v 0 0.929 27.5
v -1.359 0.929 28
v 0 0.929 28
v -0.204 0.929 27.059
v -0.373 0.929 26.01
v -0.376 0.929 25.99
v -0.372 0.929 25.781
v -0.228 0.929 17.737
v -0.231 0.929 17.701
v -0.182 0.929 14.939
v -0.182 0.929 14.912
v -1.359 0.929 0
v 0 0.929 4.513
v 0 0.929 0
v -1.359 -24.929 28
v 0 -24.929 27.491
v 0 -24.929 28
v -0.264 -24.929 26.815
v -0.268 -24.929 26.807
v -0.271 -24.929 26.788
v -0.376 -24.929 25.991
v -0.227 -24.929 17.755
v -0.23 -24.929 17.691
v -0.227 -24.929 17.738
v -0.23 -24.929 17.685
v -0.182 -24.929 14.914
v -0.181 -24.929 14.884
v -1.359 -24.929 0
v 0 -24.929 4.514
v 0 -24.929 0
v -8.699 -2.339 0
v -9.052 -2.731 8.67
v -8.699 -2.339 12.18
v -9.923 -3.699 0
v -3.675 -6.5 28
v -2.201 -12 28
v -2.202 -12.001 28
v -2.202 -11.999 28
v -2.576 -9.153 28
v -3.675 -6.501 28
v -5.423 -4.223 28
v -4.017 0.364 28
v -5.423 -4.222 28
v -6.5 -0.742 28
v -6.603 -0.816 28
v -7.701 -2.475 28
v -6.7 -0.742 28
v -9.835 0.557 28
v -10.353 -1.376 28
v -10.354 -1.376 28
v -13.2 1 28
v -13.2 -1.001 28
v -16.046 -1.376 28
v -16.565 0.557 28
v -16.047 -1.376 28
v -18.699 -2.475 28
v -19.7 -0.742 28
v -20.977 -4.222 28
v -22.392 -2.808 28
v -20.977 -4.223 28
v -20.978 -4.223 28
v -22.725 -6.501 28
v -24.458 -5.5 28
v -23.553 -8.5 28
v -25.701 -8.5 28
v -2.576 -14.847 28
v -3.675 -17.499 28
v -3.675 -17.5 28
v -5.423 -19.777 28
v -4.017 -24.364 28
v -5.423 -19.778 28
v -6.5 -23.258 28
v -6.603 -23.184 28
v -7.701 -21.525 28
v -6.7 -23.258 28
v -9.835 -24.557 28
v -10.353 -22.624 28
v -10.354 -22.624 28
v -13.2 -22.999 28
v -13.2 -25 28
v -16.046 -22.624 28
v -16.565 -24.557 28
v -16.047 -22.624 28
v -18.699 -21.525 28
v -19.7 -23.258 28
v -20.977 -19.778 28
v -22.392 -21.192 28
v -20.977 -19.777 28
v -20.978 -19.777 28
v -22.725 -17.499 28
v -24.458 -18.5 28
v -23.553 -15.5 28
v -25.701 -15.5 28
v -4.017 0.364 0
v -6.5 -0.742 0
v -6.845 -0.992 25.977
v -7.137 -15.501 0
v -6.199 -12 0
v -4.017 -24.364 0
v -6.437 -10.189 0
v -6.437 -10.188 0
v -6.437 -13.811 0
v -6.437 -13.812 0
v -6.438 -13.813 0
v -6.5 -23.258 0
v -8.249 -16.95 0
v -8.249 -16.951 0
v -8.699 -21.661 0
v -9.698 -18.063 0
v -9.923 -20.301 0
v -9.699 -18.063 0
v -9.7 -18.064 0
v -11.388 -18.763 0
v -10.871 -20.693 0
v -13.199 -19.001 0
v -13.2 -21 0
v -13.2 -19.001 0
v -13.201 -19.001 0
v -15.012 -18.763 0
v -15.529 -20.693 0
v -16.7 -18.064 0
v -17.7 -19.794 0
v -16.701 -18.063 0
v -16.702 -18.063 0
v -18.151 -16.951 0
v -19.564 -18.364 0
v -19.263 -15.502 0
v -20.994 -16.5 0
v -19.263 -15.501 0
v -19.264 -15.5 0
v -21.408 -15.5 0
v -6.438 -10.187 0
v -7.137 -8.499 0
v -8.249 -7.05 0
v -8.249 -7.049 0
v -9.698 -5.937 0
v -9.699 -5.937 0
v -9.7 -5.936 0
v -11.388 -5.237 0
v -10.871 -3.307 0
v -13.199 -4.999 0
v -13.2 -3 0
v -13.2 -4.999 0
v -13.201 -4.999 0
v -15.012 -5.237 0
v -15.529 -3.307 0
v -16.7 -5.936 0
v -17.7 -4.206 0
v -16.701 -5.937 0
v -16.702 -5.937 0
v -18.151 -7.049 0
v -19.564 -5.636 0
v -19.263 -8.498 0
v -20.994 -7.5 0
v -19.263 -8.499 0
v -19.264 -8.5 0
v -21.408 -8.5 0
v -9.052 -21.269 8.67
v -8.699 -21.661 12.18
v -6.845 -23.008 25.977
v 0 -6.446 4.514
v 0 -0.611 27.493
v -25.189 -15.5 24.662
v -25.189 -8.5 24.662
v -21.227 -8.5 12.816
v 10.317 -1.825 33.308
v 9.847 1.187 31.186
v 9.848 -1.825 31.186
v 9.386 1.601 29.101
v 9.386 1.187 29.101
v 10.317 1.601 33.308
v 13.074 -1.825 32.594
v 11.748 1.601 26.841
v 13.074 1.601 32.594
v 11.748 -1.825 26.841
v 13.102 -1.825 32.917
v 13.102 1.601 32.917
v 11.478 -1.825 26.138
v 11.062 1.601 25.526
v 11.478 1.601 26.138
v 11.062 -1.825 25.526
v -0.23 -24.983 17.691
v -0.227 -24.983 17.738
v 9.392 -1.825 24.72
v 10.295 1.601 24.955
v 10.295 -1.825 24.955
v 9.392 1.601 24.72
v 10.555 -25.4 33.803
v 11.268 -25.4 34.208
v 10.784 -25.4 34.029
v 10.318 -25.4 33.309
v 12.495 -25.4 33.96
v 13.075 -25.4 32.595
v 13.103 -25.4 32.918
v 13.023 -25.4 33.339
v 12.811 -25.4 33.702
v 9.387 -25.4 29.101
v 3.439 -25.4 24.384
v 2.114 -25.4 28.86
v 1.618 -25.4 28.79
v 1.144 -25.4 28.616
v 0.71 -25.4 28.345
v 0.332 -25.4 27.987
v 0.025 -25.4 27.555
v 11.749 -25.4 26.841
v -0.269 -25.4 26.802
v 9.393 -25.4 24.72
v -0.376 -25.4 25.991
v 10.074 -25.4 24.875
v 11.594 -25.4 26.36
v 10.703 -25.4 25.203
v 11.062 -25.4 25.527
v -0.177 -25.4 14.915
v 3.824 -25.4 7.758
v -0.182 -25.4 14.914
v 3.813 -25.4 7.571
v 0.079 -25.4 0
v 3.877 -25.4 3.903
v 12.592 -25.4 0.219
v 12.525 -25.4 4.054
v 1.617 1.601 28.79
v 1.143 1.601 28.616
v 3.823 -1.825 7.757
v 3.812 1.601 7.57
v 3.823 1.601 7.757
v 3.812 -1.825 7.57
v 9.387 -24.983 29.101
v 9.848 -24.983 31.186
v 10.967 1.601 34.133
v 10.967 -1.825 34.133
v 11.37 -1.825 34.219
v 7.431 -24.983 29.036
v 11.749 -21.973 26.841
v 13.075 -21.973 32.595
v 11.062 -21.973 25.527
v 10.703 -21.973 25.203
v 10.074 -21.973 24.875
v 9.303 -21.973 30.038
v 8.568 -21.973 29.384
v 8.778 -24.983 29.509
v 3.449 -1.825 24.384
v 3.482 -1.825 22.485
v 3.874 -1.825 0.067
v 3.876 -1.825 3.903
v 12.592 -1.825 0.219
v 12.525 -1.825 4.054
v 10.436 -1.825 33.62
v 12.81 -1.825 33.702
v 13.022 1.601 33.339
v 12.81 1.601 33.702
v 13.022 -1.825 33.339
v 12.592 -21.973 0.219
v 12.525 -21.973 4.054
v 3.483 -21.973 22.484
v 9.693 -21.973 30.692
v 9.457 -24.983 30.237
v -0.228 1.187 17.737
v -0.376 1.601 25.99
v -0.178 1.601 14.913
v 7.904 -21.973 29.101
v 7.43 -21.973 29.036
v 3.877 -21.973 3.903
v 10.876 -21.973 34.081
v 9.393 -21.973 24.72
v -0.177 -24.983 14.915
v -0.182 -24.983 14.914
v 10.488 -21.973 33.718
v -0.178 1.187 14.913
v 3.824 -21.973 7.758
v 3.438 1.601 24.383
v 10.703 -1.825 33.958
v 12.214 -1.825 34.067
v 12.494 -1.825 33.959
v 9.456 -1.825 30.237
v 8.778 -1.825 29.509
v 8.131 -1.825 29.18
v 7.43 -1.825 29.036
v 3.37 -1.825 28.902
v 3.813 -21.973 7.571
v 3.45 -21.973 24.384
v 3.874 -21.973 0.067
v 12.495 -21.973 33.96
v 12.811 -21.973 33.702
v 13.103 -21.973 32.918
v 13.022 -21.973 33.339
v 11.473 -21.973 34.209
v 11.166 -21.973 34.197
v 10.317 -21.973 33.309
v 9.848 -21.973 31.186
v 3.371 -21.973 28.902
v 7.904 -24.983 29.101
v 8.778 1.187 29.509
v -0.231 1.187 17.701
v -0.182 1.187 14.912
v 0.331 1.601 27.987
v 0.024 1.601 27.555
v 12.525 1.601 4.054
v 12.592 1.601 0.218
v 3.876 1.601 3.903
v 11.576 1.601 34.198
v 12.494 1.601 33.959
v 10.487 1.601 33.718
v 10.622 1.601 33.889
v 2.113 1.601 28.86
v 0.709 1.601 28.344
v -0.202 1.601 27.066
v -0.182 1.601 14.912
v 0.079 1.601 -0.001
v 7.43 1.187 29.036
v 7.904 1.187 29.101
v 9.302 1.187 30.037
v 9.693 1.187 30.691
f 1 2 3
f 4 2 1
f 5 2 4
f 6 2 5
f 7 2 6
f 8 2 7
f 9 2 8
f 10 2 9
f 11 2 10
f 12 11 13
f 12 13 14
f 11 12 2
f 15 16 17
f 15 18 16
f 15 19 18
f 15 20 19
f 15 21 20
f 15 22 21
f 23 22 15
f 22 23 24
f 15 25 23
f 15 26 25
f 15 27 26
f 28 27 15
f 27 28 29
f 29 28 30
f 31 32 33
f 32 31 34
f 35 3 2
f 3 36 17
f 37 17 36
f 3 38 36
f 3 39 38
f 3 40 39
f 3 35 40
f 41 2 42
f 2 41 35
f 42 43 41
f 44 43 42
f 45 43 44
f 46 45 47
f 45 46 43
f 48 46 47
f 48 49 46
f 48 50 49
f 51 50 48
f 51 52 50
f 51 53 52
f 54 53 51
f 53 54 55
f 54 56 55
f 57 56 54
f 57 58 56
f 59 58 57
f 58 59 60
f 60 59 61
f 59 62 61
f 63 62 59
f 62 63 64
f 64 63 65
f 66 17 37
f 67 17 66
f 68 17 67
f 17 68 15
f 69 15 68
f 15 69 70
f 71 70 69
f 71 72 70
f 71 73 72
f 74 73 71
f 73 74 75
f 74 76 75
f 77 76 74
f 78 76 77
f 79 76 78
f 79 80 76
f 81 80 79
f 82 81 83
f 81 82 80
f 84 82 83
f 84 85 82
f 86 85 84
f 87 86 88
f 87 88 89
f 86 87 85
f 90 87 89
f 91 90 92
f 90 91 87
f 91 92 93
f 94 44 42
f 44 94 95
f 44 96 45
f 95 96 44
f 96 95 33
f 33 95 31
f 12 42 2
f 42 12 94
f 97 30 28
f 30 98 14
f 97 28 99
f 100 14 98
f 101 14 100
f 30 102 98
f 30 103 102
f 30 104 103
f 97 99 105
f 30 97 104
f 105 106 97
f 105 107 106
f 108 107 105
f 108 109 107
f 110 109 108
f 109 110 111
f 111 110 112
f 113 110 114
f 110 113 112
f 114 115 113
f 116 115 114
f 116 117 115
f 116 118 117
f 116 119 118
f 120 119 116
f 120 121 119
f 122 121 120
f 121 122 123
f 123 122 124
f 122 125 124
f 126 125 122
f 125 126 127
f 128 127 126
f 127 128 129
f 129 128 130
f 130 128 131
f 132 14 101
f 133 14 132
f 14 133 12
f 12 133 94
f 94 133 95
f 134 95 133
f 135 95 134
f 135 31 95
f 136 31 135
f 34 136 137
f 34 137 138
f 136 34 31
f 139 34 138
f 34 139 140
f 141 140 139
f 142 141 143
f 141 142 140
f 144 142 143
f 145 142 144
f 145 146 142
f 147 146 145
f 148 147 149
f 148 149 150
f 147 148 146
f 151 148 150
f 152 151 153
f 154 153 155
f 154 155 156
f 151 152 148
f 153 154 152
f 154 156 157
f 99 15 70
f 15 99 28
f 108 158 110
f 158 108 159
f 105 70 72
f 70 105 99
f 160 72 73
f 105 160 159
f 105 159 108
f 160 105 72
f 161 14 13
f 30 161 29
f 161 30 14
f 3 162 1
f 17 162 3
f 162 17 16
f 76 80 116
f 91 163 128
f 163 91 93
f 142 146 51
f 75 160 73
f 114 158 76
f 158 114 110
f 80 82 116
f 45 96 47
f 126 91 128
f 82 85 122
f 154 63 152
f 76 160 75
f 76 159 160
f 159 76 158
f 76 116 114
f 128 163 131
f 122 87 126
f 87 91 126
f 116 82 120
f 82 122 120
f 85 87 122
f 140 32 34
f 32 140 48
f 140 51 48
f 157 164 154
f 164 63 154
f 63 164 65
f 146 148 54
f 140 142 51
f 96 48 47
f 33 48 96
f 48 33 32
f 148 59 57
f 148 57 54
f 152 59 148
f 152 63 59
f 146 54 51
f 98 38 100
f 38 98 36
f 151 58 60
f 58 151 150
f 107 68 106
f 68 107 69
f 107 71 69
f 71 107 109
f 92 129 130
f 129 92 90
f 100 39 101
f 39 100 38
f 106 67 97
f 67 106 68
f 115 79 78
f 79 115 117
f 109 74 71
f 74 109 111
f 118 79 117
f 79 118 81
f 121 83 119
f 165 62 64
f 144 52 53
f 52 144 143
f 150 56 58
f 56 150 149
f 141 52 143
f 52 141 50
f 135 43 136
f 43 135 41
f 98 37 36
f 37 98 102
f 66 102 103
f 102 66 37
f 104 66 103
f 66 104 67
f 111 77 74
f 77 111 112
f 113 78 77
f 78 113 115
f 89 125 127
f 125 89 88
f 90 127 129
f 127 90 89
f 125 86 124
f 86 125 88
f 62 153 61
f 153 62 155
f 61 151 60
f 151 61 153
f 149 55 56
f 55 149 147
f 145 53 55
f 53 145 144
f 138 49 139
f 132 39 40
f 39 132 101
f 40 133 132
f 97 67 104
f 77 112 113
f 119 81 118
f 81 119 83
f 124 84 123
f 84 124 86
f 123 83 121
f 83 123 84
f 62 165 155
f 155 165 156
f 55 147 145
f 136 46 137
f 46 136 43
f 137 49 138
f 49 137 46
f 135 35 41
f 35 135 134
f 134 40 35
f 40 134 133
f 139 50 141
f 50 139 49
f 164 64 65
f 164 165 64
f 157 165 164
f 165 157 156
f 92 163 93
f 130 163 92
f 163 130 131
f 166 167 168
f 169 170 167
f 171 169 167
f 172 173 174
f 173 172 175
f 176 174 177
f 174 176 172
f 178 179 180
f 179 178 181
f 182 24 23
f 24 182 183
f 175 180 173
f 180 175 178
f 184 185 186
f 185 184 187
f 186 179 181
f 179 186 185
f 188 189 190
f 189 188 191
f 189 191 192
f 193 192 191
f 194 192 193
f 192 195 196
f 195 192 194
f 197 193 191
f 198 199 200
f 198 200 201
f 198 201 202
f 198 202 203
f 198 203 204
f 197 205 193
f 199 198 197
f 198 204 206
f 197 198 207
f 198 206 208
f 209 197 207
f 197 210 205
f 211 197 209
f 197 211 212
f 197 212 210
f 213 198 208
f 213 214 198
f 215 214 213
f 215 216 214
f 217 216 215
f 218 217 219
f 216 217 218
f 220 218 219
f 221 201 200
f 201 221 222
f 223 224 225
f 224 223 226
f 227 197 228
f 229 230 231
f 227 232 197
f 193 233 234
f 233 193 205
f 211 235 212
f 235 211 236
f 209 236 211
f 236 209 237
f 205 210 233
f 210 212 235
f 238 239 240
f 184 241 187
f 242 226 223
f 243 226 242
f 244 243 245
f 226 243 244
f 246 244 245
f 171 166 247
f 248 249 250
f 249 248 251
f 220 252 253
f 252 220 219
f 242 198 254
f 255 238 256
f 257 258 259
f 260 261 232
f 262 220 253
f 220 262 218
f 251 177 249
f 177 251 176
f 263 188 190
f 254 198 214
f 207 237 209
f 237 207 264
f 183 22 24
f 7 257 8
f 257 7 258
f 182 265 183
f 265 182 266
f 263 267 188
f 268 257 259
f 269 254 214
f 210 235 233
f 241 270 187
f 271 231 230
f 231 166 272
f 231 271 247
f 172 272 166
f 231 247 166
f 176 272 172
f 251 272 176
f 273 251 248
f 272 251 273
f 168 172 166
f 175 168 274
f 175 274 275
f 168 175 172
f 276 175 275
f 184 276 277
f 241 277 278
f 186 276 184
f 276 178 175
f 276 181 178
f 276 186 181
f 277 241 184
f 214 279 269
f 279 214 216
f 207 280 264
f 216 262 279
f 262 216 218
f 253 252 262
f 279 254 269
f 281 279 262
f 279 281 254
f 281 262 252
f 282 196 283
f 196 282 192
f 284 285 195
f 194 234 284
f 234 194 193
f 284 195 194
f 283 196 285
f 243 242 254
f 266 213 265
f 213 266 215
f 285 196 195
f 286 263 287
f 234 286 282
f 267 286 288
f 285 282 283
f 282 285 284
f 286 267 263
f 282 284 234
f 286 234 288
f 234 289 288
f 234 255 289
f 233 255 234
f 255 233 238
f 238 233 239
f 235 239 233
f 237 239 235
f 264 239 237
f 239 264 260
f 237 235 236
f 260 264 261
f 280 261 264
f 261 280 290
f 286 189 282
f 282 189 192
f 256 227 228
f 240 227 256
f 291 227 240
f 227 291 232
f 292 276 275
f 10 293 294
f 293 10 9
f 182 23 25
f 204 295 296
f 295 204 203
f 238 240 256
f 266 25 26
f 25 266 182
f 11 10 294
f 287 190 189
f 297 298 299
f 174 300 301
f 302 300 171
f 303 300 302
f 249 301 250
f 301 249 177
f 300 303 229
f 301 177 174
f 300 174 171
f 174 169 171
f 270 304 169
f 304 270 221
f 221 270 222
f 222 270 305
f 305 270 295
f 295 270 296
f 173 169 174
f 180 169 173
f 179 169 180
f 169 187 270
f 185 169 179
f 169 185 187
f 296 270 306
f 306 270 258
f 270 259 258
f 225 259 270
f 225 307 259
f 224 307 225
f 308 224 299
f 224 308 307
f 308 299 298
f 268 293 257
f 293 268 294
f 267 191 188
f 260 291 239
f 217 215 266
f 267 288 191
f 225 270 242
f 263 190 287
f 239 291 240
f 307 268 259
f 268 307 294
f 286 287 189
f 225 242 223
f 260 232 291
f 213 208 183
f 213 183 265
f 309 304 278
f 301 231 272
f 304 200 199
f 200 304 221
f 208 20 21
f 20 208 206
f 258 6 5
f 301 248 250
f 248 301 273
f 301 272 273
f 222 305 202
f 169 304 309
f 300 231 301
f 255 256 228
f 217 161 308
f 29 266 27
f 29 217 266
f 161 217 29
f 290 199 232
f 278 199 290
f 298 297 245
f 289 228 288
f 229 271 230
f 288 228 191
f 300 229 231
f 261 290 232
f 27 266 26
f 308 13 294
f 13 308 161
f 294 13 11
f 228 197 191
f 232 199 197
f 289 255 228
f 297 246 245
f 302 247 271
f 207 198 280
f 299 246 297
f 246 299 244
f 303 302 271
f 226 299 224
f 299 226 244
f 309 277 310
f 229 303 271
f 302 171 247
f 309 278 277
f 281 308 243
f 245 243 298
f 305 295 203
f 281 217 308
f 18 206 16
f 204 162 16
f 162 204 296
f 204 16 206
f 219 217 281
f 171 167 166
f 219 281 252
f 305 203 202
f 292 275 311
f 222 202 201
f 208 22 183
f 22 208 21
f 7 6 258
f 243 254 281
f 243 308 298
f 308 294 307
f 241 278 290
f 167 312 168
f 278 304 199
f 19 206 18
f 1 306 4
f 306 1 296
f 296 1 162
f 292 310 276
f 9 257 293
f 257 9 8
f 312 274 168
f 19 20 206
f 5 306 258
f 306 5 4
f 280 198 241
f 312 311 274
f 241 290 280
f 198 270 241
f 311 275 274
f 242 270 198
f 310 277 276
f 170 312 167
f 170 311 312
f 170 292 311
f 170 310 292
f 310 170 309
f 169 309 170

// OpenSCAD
// file: ../../../basics/primitives/cone/cone.scad
module cone(height, bottomRadius, topRadius)
{
    cylinder(h=height, r1=bottomRadius, r2=topRadius, $fn=24);
}
// file: ../pegboard-accessories.scad
use <../../basics/primitives/cone/cone.scad>
use <../../external-resources/mounting-hardware/peg-board/blank-panel-mount/pegboard_2_position_blank.scad>

module pegboardAccessories(cordCutout = "No")
{
    union()
    {
        pegboardAccessories_blank();

        pegboardAccessories_cordedToolHolder(cordCutout = cordCutout);
    }
}

module pegboardAccessories_blank()
{
    color("green")
    translate([15.5, 0, 0])
    pegboardBlankPanel();
}

module pegboardAccessories_cordedToolHolder(cordCutout)
{
    height = 28;
    yTranslate = -12;

    difference()
    {
        union()
        {
            pegboardAccessories_cordedToolHolder_mount(height = height, yTranslate = yTranslate);

            pegboardAccessories_cordedToolHolder_holder(height = height, yTranslate = yTranslate);
        }

        pegboardAccessories_cordedToolHolder_holder_cutouts(height = height, yTranslate = yTranslate, cordCutout = cordCutout);
    }
}

module pegboardAccessories_cordedToolHolder_holder(height, yTranslate)
{
    xTranslate = yTranslate + (yTranslate * 0.10);
    translate([xTranslate, yTranslate, 0])
    cone(height = height, bottomRadius = 9, topRadius = 13);
}

module pegboardAccessories_cordedToolHolder_holder_cutouts(height, yTranslate, cordCutout)
{
    xTranslate = yTranslate + (yTranslate * 0.10);
    topRadius = 11;

    translate([xTranslate, yTranslate, -0.01])
    cone(height = height+0.02, bottomRadius = 7, topRadius = topRadius);

    if(cordCutout == "Yes")
    {
        pegboardAccessories_cordedToolHolder_holder_cutouts_cordGap(initialTranslate_x = xTranslate,
                                                                    initialTranslate_y = yTranslate,
                                                                    topRadius = topRadius,
                                                                    yLength = 7);
    }
}

module pegboardAccessories_cordedToolHolder_holder_cutouts_cordGap(initialTranslate_x, initialTranslate_y, topRadius, yLength)
{
    xTranslate = initialTranslate_x - topRadius - 5;
    yTranslate = initialTranslate_y - (yLength / 2.0);

    translate([xTranslate, yTranslate, -0.01])
    cube([10, yLength, 100]);
}

module pegboardAccessories_cordedToolHolder_mount(height, yTranslate)
{
    radius = 13;

    difference()
    {
        translate([0, yTranslate, 0])
        cylinder(r = radius, h = height);

        translate([0, yTranslate*2-5, -0.01])
        cube([radius+0.01, radius*2+10, height+0.02]);
    }
}
// main file
use <../pegboard-accessories.scad>

pegboardAccessories(cordCutout = "Yes");
